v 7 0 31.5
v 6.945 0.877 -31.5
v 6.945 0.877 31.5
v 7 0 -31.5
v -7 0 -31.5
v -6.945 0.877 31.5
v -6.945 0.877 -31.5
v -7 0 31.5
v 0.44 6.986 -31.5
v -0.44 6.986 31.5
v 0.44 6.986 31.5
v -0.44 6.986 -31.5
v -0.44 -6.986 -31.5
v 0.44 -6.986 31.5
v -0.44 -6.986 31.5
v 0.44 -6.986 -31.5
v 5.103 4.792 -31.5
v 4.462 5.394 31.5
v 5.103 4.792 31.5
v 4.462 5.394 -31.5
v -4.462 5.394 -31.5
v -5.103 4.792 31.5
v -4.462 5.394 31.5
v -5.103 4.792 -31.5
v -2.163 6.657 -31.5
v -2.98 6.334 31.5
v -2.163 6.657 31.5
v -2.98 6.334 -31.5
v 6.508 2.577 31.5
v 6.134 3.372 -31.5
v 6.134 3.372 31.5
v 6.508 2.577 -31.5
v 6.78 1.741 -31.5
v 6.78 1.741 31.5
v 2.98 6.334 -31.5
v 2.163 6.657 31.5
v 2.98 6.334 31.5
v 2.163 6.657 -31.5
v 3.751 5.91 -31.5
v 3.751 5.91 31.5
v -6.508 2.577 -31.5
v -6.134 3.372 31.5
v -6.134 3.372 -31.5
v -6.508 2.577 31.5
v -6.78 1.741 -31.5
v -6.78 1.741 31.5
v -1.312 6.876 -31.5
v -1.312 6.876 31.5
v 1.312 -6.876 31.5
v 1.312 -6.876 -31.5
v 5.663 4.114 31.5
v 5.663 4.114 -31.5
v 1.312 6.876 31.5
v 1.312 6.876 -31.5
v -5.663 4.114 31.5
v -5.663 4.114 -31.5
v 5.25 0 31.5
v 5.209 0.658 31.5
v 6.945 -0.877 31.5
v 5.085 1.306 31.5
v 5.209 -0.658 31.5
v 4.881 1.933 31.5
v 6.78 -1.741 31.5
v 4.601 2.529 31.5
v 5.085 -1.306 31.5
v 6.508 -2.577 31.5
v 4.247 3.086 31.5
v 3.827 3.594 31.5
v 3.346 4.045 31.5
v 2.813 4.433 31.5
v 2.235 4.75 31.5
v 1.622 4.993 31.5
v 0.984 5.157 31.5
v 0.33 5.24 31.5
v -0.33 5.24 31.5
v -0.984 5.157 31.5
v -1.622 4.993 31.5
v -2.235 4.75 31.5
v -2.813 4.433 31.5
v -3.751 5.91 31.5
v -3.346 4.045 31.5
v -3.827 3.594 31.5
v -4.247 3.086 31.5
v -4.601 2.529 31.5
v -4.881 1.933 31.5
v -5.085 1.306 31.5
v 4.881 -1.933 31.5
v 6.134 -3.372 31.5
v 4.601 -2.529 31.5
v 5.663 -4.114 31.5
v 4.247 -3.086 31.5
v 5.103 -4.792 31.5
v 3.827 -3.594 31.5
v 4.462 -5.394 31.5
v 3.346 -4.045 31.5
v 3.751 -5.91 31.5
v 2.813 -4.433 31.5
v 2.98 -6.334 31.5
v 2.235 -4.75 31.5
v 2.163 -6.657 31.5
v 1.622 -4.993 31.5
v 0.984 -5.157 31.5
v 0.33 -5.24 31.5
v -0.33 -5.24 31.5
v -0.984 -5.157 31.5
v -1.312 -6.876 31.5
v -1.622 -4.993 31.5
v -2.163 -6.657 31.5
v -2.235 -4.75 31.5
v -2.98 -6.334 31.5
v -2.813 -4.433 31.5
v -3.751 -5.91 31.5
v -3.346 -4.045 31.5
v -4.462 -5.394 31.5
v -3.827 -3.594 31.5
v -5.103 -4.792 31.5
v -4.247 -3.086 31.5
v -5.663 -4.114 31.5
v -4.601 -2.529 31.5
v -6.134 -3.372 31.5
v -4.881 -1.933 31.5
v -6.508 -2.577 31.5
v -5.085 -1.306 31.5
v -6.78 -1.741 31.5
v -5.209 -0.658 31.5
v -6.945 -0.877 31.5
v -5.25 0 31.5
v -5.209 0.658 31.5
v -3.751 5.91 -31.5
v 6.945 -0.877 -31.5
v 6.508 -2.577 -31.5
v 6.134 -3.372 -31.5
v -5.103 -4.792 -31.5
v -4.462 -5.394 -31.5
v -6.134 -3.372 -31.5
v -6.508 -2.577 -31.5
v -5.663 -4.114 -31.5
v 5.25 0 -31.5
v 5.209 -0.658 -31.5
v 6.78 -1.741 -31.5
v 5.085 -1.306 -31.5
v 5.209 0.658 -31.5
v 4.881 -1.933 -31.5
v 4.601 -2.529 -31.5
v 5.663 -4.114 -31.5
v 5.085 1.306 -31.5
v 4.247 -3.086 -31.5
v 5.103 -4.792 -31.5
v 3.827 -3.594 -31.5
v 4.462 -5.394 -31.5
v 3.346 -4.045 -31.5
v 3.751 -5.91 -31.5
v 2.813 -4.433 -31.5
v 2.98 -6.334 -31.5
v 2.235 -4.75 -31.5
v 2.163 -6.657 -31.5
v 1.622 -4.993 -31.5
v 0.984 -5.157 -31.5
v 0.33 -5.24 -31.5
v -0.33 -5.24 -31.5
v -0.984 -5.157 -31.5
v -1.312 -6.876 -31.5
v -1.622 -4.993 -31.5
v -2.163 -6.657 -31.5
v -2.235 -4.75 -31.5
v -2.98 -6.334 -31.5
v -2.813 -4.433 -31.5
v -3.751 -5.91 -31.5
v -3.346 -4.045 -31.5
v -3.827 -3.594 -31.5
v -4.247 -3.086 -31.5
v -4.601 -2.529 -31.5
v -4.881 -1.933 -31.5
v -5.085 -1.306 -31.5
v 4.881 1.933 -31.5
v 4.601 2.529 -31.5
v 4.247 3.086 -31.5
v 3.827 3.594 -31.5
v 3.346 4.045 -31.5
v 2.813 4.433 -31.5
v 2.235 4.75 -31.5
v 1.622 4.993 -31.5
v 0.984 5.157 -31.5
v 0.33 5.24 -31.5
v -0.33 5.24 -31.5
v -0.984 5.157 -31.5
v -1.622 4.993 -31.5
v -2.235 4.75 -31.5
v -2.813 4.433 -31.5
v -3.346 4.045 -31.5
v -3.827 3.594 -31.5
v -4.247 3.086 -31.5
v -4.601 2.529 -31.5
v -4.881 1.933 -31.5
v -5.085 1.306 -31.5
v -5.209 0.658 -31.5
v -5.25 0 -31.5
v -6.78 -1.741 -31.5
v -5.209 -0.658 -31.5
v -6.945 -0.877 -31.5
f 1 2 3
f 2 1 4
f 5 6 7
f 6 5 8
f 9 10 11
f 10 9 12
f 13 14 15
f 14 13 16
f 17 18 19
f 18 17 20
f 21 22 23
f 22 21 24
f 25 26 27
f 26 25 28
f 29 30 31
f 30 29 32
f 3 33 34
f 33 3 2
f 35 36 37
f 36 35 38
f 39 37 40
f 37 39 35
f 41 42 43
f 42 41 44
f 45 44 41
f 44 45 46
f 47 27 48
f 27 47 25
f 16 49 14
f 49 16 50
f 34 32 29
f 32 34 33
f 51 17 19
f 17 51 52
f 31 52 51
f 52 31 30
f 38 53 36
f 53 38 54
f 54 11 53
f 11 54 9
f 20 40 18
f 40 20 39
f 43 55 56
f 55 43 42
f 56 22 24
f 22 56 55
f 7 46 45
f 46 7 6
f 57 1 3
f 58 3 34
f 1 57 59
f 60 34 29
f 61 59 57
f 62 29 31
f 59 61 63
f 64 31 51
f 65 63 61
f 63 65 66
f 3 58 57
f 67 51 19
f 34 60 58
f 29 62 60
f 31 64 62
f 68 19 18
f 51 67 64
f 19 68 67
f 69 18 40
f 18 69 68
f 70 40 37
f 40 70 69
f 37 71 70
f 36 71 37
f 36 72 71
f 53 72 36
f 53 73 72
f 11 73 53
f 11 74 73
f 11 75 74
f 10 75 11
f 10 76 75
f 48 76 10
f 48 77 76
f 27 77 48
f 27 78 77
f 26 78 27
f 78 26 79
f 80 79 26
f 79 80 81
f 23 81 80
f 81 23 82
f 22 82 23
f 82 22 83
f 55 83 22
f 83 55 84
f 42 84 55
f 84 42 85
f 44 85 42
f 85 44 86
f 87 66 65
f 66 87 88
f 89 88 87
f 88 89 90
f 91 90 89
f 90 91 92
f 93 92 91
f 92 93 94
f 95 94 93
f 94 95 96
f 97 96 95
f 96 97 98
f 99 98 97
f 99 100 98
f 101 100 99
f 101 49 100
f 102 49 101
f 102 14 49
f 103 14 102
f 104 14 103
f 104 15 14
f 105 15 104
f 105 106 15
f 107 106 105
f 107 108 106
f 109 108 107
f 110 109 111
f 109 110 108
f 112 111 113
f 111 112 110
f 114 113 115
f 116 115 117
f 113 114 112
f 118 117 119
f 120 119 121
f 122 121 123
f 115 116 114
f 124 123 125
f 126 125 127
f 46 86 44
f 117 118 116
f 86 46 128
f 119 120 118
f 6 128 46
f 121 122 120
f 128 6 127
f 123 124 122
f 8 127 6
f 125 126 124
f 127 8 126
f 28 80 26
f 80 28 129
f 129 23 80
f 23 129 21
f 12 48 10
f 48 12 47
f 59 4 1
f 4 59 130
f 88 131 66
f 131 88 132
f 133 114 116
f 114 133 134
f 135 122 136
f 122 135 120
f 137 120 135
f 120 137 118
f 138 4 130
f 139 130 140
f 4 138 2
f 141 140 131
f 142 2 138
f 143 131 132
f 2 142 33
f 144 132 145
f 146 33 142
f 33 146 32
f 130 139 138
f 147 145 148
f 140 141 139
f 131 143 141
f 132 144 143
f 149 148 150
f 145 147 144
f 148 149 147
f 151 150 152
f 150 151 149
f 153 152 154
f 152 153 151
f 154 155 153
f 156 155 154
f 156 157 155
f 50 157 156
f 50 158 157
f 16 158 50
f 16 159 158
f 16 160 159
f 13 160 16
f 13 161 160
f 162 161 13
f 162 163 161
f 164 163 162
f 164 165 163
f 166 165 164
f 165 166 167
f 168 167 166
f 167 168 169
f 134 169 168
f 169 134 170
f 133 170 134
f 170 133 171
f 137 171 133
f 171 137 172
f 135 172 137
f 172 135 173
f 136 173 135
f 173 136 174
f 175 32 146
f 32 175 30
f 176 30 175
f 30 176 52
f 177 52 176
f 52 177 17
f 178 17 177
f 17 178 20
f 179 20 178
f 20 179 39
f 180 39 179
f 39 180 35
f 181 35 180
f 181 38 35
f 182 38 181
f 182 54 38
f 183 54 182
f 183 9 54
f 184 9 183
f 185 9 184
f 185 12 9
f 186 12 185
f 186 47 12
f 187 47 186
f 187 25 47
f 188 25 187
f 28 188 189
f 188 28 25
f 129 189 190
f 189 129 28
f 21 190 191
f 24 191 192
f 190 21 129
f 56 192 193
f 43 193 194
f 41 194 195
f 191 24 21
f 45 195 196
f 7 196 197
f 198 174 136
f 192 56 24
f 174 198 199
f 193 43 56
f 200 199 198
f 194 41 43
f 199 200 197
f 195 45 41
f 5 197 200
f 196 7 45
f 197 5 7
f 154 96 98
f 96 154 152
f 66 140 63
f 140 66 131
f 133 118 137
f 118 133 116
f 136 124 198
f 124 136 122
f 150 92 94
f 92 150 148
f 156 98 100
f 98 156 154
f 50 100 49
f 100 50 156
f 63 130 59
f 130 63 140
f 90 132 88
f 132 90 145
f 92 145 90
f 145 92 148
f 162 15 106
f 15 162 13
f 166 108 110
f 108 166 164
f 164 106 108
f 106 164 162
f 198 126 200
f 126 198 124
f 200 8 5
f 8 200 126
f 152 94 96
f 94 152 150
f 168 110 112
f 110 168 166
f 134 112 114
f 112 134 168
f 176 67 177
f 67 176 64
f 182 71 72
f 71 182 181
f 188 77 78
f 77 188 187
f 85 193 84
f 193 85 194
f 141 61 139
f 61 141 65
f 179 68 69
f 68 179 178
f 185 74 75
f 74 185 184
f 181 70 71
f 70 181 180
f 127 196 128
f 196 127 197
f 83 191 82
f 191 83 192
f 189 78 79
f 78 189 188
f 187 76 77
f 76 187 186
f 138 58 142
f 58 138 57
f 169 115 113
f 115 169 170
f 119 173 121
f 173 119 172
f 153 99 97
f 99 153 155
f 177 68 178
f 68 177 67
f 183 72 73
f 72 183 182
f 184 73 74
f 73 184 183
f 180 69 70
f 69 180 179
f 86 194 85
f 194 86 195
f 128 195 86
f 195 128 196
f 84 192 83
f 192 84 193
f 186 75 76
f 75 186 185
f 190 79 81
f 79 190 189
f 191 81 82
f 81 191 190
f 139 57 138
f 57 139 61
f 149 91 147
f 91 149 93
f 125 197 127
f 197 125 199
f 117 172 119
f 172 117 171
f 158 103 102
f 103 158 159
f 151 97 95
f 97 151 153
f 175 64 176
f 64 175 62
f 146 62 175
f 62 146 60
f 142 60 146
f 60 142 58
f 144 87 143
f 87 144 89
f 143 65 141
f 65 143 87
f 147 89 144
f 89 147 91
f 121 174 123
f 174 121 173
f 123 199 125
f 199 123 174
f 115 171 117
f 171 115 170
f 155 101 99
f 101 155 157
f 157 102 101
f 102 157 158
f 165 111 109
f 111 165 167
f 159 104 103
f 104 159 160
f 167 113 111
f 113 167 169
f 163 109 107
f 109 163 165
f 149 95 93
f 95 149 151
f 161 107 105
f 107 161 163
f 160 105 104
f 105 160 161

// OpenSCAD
$fn = 50;


difference() {
	union() {
		translate(v = [0, 0, -31.5000000000]) {
			cylinder(h = 63, r = 7.0000000000);
		}
	}
	union() {
		translate(v = [0, 0, -100.0000000000]) {
			cylinder(h = 200, r = 5.2500000000);
		}
	}
}
